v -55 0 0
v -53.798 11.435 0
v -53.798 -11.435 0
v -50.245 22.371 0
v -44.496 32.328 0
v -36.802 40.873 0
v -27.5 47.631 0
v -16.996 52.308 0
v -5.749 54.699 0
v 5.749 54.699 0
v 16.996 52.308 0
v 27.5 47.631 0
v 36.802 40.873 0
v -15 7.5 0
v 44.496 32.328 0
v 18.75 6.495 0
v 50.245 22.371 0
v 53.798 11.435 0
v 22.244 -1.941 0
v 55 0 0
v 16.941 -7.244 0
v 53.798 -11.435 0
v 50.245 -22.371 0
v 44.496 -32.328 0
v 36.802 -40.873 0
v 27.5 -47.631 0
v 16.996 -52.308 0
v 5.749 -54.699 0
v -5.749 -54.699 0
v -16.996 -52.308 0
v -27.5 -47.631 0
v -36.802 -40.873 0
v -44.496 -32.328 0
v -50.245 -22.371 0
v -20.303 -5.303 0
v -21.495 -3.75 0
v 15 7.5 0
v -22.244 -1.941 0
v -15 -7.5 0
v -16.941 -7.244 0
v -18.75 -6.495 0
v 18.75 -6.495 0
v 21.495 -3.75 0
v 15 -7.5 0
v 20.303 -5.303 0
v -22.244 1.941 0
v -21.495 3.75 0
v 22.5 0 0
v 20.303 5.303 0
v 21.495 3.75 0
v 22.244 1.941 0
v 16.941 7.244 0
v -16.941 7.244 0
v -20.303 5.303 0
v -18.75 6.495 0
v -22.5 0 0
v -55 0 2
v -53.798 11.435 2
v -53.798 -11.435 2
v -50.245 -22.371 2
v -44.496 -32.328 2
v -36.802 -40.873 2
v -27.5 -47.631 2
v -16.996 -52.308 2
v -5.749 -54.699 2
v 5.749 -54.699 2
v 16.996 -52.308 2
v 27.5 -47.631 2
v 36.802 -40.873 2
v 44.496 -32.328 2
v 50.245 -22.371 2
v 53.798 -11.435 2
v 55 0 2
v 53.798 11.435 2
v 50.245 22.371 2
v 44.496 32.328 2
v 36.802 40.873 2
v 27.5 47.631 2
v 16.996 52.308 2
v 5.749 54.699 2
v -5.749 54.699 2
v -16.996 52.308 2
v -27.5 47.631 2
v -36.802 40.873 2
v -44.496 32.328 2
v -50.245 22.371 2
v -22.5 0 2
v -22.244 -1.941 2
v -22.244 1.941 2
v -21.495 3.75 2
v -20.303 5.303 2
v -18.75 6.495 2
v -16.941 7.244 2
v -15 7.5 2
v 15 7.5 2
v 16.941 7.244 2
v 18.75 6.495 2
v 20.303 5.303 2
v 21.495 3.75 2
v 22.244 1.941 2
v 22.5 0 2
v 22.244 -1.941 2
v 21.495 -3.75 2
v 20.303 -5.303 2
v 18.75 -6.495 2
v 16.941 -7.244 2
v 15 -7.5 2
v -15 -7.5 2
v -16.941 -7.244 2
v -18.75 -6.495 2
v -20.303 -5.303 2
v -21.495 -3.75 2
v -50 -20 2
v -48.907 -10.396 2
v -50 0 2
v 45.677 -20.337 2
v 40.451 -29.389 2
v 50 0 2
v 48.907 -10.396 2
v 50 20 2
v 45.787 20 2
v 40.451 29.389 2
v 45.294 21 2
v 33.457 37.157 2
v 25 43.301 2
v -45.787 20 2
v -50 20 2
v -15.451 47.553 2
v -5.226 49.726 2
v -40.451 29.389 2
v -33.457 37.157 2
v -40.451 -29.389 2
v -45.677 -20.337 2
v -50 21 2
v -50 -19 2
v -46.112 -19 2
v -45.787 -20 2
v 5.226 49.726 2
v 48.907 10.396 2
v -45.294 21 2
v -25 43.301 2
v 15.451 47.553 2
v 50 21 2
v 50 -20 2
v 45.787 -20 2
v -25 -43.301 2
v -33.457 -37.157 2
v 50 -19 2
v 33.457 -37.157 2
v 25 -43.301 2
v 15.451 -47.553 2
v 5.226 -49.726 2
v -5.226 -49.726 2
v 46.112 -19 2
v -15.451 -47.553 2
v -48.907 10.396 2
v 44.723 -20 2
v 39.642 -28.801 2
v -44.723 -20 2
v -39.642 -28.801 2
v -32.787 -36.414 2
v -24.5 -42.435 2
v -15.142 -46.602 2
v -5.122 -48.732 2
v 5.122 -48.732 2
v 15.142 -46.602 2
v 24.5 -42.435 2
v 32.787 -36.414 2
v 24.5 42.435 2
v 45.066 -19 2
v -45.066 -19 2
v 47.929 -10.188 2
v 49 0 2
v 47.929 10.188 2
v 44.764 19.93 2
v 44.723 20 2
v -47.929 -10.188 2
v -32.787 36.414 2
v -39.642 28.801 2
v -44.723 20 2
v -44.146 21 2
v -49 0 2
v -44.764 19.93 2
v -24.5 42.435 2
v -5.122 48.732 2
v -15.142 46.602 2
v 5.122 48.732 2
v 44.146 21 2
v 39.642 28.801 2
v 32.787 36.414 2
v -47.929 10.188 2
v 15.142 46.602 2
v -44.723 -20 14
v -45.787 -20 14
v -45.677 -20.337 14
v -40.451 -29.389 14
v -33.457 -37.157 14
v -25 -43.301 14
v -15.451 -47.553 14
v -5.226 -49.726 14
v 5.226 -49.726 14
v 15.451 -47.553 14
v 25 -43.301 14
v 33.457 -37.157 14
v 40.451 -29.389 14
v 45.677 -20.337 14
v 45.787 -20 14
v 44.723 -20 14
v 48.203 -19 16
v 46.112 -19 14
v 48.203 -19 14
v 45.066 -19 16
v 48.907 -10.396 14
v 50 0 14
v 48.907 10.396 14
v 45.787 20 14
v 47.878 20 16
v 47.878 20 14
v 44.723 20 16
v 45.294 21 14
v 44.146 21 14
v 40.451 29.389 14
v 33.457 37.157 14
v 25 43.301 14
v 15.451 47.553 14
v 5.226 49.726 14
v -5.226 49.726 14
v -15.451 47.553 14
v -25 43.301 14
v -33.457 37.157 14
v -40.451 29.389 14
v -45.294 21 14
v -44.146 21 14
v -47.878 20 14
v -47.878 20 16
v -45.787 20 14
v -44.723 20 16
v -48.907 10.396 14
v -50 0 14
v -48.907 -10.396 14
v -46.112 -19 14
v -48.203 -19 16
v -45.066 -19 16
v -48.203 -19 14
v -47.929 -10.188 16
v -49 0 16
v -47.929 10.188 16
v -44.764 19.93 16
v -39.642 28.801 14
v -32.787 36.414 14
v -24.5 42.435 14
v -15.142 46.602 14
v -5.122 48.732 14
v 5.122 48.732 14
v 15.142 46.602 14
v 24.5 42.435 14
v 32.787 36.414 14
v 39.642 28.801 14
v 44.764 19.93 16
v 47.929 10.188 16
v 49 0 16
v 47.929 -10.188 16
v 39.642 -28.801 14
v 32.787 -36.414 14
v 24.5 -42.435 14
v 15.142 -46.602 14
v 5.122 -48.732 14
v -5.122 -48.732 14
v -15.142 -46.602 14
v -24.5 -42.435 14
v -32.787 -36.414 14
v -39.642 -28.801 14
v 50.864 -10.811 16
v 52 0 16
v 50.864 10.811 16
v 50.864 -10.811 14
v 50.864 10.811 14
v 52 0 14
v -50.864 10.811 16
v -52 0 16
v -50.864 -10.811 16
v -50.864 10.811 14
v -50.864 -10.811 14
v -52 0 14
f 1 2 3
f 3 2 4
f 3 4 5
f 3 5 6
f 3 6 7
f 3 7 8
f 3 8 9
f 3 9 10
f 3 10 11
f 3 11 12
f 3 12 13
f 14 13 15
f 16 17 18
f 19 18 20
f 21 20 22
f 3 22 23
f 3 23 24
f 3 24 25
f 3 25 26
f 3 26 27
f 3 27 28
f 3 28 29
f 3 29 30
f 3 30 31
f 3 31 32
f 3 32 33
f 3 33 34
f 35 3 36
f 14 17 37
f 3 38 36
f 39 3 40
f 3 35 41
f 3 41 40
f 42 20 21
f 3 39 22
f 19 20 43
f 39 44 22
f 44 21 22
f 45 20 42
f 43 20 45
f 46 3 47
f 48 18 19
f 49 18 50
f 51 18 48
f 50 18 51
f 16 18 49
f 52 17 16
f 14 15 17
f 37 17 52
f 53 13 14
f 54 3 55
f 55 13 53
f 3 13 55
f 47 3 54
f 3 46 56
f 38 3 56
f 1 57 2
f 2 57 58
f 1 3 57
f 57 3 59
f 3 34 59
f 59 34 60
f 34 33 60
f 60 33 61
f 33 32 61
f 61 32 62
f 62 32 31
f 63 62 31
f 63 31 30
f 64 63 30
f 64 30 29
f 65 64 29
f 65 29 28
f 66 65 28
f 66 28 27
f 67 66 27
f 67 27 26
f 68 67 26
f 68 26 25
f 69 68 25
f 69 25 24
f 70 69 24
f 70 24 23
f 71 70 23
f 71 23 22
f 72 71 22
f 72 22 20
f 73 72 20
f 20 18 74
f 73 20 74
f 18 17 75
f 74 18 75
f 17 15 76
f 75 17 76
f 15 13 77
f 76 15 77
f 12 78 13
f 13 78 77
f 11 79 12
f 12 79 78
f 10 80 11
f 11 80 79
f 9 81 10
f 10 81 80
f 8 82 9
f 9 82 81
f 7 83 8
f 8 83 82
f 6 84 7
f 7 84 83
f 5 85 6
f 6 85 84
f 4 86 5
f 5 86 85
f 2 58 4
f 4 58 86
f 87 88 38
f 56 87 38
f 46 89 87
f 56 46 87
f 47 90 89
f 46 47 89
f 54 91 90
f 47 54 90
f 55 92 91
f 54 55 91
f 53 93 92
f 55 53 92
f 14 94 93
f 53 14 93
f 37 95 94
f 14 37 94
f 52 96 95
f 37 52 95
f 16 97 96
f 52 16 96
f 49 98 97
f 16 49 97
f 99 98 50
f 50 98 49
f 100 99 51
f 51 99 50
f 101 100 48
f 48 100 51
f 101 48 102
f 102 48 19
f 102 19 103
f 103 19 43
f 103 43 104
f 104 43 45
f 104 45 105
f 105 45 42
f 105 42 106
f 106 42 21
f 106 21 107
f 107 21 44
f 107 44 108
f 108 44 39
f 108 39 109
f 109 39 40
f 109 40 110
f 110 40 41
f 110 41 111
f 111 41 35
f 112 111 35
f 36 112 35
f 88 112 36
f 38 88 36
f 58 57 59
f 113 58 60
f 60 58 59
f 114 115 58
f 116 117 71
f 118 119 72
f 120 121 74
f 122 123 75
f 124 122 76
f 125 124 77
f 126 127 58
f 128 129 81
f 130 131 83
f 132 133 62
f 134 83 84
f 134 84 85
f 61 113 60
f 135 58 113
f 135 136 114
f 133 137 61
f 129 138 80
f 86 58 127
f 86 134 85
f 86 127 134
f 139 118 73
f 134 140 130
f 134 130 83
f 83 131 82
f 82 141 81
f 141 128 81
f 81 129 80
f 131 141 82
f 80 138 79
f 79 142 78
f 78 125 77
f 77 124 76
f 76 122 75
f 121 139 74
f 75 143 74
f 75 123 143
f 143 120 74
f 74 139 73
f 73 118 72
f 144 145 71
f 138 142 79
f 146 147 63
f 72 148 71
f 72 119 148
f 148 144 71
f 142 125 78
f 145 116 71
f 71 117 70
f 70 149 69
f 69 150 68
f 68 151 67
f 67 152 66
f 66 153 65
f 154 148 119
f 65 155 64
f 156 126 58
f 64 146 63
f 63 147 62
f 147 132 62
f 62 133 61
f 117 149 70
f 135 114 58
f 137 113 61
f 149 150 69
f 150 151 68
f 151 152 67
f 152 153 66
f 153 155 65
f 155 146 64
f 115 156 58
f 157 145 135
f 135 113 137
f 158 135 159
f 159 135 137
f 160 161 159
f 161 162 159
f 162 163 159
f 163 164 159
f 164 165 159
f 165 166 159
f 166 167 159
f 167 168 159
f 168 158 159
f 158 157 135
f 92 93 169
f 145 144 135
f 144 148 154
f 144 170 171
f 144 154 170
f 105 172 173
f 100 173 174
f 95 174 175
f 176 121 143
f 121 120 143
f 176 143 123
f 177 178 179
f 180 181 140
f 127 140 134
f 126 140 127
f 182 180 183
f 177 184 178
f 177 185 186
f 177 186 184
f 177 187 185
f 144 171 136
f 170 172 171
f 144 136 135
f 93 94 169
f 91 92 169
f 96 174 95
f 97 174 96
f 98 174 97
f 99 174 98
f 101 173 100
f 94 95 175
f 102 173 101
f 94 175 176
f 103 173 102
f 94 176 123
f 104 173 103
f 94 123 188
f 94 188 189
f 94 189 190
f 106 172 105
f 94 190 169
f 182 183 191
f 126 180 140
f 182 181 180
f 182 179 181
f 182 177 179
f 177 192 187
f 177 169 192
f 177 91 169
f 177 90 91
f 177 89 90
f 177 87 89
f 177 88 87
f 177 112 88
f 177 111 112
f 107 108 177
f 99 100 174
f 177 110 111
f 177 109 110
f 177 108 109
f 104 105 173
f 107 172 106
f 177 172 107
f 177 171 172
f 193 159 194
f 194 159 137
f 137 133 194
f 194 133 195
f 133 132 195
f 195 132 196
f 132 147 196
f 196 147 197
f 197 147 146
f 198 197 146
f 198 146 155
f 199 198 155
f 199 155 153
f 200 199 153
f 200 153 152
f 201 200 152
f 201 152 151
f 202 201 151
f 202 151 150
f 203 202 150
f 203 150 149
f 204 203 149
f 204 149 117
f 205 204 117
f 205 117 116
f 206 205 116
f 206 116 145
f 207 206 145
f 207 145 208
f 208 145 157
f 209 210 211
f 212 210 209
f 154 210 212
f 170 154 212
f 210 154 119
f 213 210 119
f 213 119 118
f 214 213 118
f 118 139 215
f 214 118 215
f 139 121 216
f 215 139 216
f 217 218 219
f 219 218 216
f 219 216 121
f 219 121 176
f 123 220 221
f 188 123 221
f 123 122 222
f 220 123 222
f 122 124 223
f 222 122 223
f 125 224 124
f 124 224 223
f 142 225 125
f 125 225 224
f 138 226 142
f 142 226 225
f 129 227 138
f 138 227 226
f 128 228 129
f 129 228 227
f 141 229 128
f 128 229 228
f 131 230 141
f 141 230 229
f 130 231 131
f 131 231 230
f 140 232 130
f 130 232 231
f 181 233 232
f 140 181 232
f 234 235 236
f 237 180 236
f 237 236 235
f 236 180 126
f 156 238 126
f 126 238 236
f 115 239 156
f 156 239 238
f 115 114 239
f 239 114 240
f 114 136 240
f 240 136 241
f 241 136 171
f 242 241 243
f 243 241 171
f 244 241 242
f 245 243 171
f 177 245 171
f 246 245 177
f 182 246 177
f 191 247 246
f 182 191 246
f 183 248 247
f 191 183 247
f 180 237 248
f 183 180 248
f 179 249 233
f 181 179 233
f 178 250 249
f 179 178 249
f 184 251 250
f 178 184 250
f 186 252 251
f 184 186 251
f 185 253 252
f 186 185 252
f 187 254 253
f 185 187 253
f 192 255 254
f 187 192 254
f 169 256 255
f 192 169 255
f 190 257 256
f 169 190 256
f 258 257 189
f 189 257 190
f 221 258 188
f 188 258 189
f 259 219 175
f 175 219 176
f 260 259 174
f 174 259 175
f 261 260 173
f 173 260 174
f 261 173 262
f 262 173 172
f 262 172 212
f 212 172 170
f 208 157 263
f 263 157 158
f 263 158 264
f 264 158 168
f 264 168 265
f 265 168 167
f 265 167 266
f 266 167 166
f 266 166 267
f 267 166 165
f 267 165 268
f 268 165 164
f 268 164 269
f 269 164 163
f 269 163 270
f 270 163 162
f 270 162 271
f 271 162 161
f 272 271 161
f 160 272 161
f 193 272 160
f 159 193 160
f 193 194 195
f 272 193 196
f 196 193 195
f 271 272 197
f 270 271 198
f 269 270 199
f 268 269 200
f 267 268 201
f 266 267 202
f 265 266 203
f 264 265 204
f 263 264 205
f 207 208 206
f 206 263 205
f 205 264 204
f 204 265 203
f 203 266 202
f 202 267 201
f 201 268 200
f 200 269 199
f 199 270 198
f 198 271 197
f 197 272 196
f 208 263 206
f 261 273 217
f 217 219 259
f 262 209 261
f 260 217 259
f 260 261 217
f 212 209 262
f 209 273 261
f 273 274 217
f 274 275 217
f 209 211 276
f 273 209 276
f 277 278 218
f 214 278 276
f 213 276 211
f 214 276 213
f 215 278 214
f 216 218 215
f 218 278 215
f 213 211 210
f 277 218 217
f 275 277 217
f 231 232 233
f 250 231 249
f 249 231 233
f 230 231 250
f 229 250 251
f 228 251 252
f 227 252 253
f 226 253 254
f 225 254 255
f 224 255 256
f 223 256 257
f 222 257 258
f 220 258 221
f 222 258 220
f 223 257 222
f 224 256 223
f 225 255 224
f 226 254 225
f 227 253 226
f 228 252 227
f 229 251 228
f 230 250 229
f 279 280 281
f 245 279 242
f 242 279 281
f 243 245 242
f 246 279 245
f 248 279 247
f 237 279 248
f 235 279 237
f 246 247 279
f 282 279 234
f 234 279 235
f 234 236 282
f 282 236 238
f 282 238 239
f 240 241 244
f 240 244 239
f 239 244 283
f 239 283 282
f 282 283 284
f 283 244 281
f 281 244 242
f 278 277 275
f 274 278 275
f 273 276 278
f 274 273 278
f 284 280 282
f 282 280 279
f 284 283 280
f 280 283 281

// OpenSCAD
// Global Parameters

dry_lining_hole_diameter = 100;
dry_lining_thickness = 12;
cable_hole_width = 30;
cable_hole_height = 15;
thickness = 1;
front_overlap = 5;
front_plate_thickness = 2;
rear_overlap = 2;
rear_overlap_thickness = 2;

module modname() {

    difference() {

        // Things that exist
        union() {
            // The overlapping front plate
            cylinder(h = front_plate_thickness, r = dry_lining_hole_diameter/2 + front_overlap);

            // The main body that goes into the hole
            translate(v = [0, 0, front_plate_thickness]) {
                cylinder(h = dry_lining_thickness, r = dry_lining_hole_diameter/2);
            }
            
            // Rear overlap that grips the back of the dry-lining
            translate(v = [0, 0, dry_lining_thickness + front_plate_thickness]) {
                cylinder(h = rear_overlap_thickness, r = dry_lining_hole_diameter/2 + rear_overlap);
            }
        }

        // Things to be cut out
        union() {
            // Make hollow
            translate(v = [0, 0, front_plate_thickness]) {
                cylinder(h = dry_lining_thickness + front_plate_thickness, r = dry_lining_hole_diameter/2 - thickness );
            }

            // Convert rear overlap into just short protrusions
            translate(v = [-dry_lining_hole_diameter/2, dry_lining_hole_diameter * 0.2, dry_lining_thickness + front_plate_thickness]) {
                cube(size = [dry_lining_hole_diameter, dry_lining_hole_diameter/3, rear_overlap_thickness]);
            }
            translate(v = [-dry_lining_hole_diameter/2, -dry_lining_hole_diameter * 0.53, dry_lining_thickness + front_plate_thickness]) {
                cube(size = [dry_lining_hole_diameter, dry_lining_hole_diameter/3, rear_overlap_thickness]);
            }

            // Vertical cut to enable rear overlap to flex
            translate(v = [-dry_lining_hole_diameter/2, dry_lining_hole_diameter * 0.2, front_plate_thickness]) {
                cube(size = [dry_lining_hole_diameter, thickness, dry_lining_thickness + rear_overlap_thickness]);
            }
            translate(v = [-dry_lining_hole_diameter/2, -dry_lining_hole_diameter * 0.2, front_plate_thickness]) {
                cube(size = [dry_lining_hole_diameter, thickness, dry_lining_thickness + rear_overlap_thickness]);
            }

            // Hole for cables
            cube(size = [cable_hole_width, cable_hole_height, front_plate_thickness * 2], center = true);
            translate(v = [cable_hole_width/2, 0, 0]) {
                cylinder(h = front_plate_thickness, r = cable_hole_height/2 );
            }
            translate(v = [-cable_hole_width/2, 0, 0]) {
                cylinder(h = front_plate_thickness, r = cable_hole_height/2 );
            }
        }
    }

}

modname();
